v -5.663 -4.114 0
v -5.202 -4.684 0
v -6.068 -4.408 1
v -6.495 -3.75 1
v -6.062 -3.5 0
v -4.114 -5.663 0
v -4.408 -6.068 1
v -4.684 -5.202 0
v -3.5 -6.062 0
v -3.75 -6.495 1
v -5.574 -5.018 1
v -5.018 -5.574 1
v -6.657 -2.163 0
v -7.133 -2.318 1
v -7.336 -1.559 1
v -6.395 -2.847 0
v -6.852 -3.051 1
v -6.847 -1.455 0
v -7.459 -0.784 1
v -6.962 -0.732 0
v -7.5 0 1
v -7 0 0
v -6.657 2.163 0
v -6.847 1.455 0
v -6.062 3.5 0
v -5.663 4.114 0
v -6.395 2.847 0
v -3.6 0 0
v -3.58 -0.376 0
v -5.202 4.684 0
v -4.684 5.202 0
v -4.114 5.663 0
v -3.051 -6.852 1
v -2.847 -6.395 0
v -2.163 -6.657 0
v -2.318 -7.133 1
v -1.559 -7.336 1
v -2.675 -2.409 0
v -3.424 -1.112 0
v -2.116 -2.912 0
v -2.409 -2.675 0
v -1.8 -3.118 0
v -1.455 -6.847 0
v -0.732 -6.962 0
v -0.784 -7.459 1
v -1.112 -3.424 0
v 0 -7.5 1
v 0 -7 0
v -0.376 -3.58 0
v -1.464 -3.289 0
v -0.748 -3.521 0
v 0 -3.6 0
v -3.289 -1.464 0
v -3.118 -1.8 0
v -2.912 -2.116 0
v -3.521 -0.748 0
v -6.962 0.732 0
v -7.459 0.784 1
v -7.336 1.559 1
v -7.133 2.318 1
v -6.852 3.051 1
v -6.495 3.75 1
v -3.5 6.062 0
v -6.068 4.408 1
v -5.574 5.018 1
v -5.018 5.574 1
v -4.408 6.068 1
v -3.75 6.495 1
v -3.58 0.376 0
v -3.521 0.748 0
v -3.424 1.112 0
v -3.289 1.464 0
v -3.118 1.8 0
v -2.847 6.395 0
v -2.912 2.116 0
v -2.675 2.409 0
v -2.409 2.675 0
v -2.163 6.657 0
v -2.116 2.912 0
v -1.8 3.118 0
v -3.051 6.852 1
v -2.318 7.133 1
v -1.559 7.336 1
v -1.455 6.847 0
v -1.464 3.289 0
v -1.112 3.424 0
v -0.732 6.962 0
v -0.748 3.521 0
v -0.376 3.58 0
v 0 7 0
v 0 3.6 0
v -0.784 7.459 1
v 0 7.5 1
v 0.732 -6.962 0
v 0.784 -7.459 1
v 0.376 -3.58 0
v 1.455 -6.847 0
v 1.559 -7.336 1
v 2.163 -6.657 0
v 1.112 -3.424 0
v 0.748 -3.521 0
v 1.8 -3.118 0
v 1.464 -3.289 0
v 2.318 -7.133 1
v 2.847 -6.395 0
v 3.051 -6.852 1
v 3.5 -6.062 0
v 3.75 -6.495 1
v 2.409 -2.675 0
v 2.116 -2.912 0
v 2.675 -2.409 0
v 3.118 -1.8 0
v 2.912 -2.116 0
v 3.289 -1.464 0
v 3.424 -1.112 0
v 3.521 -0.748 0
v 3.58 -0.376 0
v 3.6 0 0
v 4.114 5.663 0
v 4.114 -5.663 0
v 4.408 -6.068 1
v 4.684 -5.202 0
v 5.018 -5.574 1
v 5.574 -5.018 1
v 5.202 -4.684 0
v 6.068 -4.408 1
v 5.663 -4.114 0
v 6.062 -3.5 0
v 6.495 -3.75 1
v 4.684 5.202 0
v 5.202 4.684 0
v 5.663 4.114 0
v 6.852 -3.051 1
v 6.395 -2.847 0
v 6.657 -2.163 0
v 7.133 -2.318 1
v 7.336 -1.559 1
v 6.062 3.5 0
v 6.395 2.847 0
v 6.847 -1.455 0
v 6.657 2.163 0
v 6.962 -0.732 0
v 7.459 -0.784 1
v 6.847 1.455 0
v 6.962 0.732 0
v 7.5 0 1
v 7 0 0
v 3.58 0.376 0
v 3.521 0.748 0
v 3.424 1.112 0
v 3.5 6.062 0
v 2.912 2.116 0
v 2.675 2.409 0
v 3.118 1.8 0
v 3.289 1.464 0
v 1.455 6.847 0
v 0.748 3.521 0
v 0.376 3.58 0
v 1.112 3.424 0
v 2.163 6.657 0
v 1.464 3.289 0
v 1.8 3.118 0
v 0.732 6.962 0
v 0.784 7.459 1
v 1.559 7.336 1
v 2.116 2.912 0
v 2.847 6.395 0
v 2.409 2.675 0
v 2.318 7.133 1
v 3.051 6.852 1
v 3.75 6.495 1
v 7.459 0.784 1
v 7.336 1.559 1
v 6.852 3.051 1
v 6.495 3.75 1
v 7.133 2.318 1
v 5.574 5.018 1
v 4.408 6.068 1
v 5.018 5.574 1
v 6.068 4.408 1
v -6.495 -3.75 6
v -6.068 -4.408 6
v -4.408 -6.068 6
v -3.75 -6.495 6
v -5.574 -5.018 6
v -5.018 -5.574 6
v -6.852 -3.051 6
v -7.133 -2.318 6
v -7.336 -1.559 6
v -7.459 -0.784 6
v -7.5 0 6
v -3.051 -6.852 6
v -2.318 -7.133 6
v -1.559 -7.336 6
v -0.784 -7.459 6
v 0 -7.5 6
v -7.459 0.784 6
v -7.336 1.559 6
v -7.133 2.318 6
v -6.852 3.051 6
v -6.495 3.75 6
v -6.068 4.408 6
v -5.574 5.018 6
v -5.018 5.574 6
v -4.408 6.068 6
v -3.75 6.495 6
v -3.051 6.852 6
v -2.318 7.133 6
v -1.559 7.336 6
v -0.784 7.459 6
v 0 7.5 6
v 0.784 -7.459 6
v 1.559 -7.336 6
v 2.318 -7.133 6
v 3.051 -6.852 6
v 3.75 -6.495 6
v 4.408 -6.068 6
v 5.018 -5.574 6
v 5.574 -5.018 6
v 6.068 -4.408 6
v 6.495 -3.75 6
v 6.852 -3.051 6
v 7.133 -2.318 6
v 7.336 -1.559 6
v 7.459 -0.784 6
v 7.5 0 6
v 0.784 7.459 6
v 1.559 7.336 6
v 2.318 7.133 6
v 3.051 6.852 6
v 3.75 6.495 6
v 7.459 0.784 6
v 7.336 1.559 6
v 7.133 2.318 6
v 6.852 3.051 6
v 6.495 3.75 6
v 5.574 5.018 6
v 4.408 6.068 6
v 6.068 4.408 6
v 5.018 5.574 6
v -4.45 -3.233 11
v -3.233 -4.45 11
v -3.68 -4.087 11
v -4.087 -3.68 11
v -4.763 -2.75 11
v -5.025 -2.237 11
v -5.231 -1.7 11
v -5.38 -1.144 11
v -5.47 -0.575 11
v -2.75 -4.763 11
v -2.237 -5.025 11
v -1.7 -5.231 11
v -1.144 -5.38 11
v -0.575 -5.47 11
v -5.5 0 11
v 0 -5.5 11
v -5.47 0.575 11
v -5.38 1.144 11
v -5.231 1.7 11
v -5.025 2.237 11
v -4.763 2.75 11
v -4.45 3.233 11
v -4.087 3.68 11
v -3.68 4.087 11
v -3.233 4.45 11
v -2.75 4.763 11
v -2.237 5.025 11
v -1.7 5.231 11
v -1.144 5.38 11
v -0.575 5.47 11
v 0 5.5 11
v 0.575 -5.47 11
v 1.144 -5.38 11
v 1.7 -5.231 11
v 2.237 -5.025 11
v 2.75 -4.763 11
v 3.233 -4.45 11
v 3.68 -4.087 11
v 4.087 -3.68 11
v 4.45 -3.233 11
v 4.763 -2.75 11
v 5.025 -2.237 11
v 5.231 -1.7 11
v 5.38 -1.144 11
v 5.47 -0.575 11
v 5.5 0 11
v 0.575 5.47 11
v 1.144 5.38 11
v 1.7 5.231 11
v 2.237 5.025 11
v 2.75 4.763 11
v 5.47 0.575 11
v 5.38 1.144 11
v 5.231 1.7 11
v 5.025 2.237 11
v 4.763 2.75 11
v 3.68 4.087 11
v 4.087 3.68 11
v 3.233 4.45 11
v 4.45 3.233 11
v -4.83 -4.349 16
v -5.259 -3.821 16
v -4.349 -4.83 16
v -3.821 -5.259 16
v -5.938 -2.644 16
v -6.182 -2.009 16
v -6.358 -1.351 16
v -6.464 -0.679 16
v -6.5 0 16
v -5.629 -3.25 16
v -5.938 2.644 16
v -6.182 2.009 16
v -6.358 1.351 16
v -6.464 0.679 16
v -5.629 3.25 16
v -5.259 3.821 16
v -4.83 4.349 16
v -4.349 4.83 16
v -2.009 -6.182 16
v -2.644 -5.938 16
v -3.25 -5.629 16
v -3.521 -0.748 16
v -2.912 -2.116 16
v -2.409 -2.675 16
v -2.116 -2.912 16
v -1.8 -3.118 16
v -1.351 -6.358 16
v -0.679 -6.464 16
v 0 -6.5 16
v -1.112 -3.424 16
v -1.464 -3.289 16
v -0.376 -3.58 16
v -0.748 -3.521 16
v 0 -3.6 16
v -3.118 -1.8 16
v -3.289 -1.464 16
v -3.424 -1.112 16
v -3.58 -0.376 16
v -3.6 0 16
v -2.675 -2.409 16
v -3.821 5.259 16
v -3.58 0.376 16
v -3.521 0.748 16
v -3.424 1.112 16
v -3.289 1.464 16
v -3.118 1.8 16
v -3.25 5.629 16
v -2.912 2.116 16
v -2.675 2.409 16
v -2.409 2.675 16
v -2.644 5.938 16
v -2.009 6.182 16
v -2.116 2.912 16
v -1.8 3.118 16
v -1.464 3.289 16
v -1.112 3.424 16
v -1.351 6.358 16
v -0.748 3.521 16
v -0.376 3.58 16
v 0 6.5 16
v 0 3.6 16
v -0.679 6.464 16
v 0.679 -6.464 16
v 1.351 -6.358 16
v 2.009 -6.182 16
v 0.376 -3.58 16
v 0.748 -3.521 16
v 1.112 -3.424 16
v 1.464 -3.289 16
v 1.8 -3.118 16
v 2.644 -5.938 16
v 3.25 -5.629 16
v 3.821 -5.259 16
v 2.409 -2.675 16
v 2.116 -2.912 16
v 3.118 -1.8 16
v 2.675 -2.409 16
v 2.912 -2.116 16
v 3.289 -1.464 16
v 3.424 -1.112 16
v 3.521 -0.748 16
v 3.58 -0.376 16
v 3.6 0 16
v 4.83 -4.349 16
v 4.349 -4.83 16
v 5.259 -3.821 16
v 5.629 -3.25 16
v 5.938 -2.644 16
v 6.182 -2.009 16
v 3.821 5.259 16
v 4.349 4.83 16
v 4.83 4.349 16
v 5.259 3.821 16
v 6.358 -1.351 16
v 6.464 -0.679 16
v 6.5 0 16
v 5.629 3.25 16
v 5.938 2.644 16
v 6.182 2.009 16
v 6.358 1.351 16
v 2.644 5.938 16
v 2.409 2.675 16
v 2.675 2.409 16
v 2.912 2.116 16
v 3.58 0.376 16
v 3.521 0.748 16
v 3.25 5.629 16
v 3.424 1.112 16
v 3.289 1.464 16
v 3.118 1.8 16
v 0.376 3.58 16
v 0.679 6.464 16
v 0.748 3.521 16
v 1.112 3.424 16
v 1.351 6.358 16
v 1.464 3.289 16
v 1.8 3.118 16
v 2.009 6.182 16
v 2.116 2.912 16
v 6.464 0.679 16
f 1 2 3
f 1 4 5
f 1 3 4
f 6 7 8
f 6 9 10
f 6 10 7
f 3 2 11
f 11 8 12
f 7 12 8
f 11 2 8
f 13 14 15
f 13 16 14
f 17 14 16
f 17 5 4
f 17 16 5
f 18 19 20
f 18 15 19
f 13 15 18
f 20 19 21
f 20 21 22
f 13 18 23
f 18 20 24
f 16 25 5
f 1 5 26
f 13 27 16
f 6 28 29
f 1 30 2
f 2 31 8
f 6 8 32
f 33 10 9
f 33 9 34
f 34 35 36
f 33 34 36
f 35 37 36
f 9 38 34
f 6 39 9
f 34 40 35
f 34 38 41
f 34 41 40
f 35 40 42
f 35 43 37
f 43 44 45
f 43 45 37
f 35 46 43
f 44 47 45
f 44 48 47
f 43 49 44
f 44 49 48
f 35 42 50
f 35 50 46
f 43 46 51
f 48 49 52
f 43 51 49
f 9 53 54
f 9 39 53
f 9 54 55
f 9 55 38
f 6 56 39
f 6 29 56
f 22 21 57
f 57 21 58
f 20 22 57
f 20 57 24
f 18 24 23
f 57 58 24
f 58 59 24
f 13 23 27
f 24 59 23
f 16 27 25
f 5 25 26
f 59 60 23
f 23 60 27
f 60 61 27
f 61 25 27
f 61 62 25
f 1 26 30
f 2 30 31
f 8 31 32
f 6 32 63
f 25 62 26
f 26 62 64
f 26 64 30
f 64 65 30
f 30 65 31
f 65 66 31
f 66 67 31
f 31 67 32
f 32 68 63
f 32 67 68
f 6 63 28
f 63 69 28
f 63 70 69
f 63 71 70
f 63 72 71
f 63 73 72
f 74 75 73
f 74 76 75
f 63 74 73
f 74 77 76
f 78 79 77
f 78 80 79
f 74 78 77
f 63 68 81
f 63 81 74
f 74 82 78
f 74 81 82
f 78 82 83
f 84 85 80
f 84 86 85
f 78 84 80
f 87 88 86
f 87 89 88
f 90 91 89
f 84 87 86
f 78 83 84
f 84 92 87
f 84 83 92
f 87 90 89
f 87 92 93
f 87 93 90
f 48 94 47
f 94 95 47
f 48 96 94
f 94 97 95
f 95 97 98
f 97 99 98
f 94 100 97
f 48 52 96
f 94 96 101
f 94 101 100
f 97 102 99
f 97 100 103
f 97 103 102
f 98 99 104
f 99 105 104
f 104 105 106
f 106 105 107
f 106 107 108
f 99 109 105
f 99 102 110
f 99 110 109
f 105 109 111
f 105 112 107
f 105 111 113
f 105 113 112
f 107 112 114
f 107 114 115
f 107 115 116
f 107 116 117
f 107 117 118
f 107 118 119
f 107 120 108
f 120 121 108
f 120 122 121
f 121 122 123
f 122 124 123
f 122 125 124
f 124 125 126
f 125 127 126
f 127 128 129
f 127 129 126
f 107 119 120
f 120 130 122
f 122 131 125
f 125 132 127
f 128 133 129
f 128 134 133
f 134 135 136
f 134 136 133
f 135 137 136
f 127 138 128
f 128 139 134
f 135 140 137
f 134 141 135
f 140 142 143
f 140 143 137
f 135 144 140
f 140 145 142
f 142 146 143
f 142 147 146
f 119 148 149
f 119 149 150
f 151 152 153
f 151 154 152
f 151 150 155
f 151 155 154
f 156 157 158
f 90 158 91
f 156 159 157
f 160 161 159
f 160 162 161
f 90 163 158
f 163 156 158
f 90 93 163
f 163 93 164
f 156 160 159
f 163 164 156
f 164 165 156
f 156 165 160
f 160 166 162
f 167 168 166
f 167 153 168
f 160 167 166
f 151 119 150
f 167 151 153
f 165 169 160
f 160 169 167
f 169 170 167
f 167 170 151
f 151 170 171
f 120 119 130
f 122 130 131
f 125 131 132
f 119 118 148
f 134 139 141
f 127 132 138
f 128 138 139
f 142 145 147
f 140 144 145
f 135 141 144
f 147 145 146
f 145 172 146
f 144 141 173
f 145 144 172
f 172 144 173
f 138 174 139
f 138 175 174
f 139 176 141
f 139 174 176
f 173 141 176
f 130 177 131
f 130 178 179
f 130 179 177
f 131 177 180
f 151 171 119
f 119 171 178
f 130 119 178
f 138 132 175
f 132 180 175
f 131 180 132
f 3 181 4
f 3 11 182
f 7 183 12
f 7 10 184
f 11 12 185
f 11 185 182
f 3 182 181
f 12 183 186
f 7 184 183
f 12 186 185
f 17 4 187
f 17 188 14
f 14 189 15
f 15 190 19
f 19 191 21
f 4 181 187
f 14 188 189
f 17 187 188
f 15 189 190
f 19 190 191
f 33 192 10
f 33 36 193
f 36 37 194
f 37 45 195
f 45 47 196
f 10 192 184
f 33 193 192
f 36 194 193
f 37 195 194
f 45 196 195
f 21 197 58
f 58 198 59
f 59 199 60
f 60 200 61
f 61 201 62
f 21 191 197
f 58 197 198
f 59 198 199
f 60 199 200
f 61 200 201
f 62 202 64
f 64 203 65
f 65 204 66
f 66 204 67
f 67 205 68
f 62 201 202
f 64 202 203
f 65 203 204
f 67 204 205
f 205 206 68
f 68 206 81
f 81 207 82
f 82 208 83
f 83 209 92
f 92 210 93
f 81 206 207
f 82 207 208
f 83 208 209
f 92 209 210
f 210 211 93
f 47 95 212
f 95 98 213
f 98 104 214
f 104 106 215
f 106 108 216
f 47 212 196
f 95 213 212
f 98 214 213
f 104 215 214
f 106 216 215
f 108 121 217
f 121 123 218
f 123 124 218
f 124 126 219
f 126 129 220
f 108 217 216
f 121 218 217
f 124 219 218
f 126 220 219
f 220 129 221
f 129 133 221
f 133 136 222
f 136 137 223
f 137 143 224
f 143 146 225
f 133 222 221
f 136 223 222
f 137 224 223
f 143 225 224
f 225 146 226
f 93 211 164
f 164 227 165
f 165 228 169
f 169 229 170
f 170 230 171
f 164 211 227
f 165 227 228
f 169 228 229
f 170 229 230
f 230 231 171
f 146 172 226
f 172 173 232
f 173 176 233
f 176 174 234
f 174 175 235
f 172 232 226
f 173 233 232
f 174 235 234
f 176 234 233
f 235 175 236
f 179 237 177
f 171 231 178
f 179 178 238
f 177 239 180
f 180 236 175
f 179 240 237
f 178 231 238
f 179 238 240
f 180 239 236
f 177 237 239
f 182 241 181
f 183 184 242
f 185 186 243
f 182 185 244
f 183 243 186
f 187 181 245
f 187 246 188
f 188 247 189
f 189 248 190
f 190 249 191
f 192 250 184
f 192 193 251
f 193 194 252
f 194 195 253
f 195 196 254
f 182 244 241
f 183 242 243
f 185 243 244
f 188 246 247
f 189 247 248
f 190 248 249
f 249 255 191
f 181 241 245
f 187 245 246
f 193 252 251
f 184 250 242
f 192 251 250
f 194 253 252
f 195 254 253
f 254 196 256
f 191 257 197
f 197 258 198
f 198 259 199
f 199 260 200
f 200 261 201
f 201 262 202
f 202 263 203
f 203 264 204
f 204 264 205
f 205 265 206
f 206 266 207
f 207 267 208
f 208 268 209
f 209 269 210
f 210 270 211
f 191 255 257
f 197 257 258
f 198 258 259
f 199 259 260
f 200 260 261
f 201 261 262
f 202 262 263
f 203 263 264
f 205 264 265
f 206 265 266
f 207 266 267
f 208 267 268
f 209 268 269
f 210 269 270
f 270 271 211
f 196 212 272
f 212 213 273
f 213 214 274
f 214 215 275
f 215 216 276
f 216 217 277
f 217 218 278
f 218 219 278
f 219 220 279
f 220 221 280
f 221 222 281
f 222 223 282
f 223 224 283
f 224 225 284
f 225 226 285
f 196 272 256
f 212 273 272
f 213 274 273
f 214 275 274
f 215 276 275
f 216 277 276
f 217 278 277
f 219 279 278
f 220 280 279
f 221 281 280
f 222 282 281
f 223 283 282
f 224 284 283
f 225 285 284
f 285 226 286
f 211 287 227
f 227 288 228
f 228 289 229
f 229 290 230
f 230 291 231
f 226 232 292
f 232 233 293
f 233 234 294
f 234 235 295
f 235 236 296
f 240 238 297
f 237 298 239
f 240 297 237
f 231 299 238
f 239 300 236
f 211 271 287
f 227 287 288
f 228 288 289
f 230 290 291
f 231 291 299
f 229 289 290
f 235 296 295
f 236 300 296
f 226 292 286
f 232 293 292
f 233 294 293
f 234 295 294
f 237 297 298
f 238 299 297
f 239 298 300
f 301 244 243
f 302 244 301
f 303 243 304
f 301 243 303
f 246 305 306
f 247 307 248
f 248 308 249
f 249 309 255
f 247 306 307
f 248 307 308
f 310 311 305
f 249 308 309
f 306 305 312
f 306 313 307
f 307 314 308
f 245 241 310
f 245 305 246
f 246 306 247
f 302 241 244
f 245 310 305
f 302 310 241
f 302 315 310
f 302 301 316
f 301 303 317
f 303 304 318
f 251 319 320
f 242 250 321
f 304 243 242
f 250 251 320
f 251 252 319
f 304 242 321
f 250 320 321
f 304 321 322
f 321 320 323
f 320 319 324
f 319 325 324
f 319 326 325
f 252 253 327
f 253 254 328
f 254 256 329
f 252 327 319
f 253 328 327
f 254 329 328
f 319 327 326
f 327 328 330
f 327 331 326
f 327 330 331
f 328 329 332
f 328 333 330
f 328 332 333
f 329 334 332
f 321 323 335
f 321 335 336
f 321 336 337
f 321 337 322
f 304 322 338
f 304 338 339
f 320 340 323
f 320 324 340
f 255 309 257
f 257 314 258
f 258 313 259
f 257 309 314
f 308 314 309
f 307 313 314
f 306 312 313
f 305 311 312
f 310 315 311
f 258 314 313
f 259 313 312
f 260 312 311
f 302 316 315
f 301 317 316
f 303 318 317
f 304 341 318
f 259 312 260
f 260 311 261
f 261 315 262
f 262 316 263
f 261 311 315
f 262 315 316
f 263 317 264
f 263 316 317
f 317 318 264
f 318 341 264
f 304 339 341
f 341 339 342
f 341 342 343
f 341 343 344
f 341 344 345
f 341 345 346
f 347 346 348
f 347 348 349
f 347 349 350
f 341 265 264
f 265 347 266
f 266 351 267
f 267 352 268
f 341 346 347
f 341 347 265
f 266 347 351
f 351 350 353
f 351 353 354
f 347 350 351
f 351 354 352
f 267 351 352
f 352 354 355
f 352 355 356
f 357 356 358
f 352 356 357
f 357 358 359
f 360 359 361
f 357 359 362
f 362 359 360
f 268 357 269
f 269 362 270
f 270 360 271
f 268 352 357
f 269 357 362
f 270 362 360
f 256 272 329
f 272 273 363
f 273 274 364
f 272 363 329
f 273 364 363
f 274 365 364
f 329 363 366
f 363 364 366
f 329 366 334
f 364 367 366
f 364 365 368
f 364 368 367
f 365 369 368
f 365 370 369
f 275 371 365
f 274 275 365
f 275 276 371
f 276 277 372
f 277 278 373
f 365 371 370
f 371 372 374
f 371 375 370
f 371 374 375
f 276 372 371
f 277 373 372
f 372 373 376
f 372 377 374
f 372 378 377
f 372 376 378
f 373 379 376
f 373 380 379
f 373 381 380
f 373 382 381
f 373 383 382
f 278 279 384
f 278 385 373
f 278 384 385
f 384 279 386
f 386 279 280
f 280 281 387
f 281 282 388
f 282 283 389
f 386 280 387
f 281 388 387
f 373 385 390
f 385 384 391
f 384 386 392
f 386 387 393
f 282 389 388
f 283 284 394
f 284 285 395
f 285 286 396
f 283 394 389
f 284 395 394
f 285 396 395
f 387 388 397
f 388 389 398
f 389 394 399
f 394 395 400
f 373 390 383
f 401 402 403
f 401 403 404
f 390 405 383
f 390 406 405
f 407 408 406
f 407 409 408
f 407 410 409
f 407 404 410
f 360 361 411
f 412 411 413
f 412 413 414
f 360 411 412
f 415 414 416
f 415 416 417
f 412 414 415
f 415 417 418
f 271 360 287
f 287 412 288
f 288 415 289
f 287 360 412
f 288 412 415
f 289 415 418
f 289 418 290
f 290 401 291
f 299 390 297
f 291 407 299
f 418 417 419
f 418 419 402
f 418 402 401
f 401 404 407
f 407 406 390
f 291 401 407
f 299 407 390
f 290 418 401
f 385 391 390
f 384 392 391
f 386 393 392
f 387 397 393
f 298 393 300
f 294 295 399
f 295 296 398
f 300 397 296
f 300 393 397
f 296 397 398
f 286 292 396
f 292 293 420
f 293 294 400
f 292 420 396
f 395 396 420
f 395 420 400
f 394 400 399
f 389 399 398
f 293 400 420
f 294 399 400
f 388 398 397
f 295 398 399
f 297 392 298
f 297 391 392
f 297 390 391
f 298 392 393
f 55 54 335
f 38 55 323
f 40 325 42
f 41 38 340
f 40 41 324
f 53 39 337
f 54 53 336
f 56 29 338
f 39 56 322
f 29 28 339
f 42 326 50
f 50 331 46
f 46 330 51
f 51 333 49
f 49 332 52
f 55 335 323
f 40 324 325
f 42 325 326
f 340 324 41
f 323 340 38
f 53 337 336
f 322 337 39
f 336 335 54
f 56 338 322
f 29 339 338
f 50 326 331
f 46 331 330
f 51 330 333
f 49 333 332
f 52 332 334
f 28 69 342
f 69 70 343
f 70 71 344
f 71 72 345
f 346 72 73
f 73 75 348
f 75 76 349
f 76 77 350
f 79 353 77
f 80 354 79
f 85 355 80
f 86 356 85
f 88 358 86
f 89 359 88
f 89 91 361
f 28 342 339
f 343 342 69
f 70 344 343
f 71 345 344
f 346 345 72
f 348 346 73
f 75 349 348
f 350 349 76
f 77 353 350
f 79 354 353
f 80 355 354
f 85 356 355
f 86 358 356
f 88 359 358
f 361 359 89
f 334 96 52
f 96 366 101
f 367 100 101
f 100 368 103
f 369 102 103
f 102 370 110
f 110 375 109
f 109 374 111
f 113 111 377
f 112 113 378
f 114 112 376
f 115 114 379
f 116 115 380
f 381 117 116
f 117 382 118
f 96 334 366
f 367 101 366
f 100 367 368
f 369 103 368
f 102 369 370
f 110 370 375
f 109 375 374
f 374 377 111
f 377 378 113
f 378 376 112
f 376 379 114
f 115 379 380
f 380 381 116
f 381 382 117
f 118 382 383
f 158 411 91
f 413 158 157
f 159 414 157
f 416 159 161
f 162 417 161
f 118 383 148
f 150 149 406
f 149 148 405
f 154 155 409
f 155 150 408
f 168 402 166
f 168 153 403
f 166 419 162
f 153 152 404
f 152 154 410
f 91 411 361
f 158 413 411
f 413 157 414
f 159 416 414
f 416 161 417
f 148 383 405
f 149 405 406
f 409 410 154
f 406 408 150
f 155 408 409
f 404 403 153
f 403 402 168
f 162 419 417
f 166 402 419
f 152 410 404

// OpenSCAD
$fn = 60;
height = 16;
th = 5;
bbh = 1;
bh = 5;
mh = height - th - bh - bbh;
hr = 3.6;
bbr = 7.0;
br = 7.5;
mr = 5.5;
tr = 6.5;
eps = 0.01;
difference() {
    union() {
        translate([0,0,bbh/2]) {
            cylinder(h = bbh, r1 = bbr, r2 = br, center = true);
        }
        translate([0,0,bbh + bh/2]) {
            cylinder(h = bh, r = br, center = true);
        }
        translate([0,0,bbh + bh + mh/2]) {
            cylinder(h = mh, r1 = br, r2 = mr, center = true);
        }
        translate([0,0,bbh + bh + mh + th/2]) {
            cylinder(h = th, r1 = mr, r2 = tr, center = true);
        }
    }
    translate([0, 0, height/2]) {
        cylinder(h = height + 2*eps, r = hr, center = true);
    }
}
